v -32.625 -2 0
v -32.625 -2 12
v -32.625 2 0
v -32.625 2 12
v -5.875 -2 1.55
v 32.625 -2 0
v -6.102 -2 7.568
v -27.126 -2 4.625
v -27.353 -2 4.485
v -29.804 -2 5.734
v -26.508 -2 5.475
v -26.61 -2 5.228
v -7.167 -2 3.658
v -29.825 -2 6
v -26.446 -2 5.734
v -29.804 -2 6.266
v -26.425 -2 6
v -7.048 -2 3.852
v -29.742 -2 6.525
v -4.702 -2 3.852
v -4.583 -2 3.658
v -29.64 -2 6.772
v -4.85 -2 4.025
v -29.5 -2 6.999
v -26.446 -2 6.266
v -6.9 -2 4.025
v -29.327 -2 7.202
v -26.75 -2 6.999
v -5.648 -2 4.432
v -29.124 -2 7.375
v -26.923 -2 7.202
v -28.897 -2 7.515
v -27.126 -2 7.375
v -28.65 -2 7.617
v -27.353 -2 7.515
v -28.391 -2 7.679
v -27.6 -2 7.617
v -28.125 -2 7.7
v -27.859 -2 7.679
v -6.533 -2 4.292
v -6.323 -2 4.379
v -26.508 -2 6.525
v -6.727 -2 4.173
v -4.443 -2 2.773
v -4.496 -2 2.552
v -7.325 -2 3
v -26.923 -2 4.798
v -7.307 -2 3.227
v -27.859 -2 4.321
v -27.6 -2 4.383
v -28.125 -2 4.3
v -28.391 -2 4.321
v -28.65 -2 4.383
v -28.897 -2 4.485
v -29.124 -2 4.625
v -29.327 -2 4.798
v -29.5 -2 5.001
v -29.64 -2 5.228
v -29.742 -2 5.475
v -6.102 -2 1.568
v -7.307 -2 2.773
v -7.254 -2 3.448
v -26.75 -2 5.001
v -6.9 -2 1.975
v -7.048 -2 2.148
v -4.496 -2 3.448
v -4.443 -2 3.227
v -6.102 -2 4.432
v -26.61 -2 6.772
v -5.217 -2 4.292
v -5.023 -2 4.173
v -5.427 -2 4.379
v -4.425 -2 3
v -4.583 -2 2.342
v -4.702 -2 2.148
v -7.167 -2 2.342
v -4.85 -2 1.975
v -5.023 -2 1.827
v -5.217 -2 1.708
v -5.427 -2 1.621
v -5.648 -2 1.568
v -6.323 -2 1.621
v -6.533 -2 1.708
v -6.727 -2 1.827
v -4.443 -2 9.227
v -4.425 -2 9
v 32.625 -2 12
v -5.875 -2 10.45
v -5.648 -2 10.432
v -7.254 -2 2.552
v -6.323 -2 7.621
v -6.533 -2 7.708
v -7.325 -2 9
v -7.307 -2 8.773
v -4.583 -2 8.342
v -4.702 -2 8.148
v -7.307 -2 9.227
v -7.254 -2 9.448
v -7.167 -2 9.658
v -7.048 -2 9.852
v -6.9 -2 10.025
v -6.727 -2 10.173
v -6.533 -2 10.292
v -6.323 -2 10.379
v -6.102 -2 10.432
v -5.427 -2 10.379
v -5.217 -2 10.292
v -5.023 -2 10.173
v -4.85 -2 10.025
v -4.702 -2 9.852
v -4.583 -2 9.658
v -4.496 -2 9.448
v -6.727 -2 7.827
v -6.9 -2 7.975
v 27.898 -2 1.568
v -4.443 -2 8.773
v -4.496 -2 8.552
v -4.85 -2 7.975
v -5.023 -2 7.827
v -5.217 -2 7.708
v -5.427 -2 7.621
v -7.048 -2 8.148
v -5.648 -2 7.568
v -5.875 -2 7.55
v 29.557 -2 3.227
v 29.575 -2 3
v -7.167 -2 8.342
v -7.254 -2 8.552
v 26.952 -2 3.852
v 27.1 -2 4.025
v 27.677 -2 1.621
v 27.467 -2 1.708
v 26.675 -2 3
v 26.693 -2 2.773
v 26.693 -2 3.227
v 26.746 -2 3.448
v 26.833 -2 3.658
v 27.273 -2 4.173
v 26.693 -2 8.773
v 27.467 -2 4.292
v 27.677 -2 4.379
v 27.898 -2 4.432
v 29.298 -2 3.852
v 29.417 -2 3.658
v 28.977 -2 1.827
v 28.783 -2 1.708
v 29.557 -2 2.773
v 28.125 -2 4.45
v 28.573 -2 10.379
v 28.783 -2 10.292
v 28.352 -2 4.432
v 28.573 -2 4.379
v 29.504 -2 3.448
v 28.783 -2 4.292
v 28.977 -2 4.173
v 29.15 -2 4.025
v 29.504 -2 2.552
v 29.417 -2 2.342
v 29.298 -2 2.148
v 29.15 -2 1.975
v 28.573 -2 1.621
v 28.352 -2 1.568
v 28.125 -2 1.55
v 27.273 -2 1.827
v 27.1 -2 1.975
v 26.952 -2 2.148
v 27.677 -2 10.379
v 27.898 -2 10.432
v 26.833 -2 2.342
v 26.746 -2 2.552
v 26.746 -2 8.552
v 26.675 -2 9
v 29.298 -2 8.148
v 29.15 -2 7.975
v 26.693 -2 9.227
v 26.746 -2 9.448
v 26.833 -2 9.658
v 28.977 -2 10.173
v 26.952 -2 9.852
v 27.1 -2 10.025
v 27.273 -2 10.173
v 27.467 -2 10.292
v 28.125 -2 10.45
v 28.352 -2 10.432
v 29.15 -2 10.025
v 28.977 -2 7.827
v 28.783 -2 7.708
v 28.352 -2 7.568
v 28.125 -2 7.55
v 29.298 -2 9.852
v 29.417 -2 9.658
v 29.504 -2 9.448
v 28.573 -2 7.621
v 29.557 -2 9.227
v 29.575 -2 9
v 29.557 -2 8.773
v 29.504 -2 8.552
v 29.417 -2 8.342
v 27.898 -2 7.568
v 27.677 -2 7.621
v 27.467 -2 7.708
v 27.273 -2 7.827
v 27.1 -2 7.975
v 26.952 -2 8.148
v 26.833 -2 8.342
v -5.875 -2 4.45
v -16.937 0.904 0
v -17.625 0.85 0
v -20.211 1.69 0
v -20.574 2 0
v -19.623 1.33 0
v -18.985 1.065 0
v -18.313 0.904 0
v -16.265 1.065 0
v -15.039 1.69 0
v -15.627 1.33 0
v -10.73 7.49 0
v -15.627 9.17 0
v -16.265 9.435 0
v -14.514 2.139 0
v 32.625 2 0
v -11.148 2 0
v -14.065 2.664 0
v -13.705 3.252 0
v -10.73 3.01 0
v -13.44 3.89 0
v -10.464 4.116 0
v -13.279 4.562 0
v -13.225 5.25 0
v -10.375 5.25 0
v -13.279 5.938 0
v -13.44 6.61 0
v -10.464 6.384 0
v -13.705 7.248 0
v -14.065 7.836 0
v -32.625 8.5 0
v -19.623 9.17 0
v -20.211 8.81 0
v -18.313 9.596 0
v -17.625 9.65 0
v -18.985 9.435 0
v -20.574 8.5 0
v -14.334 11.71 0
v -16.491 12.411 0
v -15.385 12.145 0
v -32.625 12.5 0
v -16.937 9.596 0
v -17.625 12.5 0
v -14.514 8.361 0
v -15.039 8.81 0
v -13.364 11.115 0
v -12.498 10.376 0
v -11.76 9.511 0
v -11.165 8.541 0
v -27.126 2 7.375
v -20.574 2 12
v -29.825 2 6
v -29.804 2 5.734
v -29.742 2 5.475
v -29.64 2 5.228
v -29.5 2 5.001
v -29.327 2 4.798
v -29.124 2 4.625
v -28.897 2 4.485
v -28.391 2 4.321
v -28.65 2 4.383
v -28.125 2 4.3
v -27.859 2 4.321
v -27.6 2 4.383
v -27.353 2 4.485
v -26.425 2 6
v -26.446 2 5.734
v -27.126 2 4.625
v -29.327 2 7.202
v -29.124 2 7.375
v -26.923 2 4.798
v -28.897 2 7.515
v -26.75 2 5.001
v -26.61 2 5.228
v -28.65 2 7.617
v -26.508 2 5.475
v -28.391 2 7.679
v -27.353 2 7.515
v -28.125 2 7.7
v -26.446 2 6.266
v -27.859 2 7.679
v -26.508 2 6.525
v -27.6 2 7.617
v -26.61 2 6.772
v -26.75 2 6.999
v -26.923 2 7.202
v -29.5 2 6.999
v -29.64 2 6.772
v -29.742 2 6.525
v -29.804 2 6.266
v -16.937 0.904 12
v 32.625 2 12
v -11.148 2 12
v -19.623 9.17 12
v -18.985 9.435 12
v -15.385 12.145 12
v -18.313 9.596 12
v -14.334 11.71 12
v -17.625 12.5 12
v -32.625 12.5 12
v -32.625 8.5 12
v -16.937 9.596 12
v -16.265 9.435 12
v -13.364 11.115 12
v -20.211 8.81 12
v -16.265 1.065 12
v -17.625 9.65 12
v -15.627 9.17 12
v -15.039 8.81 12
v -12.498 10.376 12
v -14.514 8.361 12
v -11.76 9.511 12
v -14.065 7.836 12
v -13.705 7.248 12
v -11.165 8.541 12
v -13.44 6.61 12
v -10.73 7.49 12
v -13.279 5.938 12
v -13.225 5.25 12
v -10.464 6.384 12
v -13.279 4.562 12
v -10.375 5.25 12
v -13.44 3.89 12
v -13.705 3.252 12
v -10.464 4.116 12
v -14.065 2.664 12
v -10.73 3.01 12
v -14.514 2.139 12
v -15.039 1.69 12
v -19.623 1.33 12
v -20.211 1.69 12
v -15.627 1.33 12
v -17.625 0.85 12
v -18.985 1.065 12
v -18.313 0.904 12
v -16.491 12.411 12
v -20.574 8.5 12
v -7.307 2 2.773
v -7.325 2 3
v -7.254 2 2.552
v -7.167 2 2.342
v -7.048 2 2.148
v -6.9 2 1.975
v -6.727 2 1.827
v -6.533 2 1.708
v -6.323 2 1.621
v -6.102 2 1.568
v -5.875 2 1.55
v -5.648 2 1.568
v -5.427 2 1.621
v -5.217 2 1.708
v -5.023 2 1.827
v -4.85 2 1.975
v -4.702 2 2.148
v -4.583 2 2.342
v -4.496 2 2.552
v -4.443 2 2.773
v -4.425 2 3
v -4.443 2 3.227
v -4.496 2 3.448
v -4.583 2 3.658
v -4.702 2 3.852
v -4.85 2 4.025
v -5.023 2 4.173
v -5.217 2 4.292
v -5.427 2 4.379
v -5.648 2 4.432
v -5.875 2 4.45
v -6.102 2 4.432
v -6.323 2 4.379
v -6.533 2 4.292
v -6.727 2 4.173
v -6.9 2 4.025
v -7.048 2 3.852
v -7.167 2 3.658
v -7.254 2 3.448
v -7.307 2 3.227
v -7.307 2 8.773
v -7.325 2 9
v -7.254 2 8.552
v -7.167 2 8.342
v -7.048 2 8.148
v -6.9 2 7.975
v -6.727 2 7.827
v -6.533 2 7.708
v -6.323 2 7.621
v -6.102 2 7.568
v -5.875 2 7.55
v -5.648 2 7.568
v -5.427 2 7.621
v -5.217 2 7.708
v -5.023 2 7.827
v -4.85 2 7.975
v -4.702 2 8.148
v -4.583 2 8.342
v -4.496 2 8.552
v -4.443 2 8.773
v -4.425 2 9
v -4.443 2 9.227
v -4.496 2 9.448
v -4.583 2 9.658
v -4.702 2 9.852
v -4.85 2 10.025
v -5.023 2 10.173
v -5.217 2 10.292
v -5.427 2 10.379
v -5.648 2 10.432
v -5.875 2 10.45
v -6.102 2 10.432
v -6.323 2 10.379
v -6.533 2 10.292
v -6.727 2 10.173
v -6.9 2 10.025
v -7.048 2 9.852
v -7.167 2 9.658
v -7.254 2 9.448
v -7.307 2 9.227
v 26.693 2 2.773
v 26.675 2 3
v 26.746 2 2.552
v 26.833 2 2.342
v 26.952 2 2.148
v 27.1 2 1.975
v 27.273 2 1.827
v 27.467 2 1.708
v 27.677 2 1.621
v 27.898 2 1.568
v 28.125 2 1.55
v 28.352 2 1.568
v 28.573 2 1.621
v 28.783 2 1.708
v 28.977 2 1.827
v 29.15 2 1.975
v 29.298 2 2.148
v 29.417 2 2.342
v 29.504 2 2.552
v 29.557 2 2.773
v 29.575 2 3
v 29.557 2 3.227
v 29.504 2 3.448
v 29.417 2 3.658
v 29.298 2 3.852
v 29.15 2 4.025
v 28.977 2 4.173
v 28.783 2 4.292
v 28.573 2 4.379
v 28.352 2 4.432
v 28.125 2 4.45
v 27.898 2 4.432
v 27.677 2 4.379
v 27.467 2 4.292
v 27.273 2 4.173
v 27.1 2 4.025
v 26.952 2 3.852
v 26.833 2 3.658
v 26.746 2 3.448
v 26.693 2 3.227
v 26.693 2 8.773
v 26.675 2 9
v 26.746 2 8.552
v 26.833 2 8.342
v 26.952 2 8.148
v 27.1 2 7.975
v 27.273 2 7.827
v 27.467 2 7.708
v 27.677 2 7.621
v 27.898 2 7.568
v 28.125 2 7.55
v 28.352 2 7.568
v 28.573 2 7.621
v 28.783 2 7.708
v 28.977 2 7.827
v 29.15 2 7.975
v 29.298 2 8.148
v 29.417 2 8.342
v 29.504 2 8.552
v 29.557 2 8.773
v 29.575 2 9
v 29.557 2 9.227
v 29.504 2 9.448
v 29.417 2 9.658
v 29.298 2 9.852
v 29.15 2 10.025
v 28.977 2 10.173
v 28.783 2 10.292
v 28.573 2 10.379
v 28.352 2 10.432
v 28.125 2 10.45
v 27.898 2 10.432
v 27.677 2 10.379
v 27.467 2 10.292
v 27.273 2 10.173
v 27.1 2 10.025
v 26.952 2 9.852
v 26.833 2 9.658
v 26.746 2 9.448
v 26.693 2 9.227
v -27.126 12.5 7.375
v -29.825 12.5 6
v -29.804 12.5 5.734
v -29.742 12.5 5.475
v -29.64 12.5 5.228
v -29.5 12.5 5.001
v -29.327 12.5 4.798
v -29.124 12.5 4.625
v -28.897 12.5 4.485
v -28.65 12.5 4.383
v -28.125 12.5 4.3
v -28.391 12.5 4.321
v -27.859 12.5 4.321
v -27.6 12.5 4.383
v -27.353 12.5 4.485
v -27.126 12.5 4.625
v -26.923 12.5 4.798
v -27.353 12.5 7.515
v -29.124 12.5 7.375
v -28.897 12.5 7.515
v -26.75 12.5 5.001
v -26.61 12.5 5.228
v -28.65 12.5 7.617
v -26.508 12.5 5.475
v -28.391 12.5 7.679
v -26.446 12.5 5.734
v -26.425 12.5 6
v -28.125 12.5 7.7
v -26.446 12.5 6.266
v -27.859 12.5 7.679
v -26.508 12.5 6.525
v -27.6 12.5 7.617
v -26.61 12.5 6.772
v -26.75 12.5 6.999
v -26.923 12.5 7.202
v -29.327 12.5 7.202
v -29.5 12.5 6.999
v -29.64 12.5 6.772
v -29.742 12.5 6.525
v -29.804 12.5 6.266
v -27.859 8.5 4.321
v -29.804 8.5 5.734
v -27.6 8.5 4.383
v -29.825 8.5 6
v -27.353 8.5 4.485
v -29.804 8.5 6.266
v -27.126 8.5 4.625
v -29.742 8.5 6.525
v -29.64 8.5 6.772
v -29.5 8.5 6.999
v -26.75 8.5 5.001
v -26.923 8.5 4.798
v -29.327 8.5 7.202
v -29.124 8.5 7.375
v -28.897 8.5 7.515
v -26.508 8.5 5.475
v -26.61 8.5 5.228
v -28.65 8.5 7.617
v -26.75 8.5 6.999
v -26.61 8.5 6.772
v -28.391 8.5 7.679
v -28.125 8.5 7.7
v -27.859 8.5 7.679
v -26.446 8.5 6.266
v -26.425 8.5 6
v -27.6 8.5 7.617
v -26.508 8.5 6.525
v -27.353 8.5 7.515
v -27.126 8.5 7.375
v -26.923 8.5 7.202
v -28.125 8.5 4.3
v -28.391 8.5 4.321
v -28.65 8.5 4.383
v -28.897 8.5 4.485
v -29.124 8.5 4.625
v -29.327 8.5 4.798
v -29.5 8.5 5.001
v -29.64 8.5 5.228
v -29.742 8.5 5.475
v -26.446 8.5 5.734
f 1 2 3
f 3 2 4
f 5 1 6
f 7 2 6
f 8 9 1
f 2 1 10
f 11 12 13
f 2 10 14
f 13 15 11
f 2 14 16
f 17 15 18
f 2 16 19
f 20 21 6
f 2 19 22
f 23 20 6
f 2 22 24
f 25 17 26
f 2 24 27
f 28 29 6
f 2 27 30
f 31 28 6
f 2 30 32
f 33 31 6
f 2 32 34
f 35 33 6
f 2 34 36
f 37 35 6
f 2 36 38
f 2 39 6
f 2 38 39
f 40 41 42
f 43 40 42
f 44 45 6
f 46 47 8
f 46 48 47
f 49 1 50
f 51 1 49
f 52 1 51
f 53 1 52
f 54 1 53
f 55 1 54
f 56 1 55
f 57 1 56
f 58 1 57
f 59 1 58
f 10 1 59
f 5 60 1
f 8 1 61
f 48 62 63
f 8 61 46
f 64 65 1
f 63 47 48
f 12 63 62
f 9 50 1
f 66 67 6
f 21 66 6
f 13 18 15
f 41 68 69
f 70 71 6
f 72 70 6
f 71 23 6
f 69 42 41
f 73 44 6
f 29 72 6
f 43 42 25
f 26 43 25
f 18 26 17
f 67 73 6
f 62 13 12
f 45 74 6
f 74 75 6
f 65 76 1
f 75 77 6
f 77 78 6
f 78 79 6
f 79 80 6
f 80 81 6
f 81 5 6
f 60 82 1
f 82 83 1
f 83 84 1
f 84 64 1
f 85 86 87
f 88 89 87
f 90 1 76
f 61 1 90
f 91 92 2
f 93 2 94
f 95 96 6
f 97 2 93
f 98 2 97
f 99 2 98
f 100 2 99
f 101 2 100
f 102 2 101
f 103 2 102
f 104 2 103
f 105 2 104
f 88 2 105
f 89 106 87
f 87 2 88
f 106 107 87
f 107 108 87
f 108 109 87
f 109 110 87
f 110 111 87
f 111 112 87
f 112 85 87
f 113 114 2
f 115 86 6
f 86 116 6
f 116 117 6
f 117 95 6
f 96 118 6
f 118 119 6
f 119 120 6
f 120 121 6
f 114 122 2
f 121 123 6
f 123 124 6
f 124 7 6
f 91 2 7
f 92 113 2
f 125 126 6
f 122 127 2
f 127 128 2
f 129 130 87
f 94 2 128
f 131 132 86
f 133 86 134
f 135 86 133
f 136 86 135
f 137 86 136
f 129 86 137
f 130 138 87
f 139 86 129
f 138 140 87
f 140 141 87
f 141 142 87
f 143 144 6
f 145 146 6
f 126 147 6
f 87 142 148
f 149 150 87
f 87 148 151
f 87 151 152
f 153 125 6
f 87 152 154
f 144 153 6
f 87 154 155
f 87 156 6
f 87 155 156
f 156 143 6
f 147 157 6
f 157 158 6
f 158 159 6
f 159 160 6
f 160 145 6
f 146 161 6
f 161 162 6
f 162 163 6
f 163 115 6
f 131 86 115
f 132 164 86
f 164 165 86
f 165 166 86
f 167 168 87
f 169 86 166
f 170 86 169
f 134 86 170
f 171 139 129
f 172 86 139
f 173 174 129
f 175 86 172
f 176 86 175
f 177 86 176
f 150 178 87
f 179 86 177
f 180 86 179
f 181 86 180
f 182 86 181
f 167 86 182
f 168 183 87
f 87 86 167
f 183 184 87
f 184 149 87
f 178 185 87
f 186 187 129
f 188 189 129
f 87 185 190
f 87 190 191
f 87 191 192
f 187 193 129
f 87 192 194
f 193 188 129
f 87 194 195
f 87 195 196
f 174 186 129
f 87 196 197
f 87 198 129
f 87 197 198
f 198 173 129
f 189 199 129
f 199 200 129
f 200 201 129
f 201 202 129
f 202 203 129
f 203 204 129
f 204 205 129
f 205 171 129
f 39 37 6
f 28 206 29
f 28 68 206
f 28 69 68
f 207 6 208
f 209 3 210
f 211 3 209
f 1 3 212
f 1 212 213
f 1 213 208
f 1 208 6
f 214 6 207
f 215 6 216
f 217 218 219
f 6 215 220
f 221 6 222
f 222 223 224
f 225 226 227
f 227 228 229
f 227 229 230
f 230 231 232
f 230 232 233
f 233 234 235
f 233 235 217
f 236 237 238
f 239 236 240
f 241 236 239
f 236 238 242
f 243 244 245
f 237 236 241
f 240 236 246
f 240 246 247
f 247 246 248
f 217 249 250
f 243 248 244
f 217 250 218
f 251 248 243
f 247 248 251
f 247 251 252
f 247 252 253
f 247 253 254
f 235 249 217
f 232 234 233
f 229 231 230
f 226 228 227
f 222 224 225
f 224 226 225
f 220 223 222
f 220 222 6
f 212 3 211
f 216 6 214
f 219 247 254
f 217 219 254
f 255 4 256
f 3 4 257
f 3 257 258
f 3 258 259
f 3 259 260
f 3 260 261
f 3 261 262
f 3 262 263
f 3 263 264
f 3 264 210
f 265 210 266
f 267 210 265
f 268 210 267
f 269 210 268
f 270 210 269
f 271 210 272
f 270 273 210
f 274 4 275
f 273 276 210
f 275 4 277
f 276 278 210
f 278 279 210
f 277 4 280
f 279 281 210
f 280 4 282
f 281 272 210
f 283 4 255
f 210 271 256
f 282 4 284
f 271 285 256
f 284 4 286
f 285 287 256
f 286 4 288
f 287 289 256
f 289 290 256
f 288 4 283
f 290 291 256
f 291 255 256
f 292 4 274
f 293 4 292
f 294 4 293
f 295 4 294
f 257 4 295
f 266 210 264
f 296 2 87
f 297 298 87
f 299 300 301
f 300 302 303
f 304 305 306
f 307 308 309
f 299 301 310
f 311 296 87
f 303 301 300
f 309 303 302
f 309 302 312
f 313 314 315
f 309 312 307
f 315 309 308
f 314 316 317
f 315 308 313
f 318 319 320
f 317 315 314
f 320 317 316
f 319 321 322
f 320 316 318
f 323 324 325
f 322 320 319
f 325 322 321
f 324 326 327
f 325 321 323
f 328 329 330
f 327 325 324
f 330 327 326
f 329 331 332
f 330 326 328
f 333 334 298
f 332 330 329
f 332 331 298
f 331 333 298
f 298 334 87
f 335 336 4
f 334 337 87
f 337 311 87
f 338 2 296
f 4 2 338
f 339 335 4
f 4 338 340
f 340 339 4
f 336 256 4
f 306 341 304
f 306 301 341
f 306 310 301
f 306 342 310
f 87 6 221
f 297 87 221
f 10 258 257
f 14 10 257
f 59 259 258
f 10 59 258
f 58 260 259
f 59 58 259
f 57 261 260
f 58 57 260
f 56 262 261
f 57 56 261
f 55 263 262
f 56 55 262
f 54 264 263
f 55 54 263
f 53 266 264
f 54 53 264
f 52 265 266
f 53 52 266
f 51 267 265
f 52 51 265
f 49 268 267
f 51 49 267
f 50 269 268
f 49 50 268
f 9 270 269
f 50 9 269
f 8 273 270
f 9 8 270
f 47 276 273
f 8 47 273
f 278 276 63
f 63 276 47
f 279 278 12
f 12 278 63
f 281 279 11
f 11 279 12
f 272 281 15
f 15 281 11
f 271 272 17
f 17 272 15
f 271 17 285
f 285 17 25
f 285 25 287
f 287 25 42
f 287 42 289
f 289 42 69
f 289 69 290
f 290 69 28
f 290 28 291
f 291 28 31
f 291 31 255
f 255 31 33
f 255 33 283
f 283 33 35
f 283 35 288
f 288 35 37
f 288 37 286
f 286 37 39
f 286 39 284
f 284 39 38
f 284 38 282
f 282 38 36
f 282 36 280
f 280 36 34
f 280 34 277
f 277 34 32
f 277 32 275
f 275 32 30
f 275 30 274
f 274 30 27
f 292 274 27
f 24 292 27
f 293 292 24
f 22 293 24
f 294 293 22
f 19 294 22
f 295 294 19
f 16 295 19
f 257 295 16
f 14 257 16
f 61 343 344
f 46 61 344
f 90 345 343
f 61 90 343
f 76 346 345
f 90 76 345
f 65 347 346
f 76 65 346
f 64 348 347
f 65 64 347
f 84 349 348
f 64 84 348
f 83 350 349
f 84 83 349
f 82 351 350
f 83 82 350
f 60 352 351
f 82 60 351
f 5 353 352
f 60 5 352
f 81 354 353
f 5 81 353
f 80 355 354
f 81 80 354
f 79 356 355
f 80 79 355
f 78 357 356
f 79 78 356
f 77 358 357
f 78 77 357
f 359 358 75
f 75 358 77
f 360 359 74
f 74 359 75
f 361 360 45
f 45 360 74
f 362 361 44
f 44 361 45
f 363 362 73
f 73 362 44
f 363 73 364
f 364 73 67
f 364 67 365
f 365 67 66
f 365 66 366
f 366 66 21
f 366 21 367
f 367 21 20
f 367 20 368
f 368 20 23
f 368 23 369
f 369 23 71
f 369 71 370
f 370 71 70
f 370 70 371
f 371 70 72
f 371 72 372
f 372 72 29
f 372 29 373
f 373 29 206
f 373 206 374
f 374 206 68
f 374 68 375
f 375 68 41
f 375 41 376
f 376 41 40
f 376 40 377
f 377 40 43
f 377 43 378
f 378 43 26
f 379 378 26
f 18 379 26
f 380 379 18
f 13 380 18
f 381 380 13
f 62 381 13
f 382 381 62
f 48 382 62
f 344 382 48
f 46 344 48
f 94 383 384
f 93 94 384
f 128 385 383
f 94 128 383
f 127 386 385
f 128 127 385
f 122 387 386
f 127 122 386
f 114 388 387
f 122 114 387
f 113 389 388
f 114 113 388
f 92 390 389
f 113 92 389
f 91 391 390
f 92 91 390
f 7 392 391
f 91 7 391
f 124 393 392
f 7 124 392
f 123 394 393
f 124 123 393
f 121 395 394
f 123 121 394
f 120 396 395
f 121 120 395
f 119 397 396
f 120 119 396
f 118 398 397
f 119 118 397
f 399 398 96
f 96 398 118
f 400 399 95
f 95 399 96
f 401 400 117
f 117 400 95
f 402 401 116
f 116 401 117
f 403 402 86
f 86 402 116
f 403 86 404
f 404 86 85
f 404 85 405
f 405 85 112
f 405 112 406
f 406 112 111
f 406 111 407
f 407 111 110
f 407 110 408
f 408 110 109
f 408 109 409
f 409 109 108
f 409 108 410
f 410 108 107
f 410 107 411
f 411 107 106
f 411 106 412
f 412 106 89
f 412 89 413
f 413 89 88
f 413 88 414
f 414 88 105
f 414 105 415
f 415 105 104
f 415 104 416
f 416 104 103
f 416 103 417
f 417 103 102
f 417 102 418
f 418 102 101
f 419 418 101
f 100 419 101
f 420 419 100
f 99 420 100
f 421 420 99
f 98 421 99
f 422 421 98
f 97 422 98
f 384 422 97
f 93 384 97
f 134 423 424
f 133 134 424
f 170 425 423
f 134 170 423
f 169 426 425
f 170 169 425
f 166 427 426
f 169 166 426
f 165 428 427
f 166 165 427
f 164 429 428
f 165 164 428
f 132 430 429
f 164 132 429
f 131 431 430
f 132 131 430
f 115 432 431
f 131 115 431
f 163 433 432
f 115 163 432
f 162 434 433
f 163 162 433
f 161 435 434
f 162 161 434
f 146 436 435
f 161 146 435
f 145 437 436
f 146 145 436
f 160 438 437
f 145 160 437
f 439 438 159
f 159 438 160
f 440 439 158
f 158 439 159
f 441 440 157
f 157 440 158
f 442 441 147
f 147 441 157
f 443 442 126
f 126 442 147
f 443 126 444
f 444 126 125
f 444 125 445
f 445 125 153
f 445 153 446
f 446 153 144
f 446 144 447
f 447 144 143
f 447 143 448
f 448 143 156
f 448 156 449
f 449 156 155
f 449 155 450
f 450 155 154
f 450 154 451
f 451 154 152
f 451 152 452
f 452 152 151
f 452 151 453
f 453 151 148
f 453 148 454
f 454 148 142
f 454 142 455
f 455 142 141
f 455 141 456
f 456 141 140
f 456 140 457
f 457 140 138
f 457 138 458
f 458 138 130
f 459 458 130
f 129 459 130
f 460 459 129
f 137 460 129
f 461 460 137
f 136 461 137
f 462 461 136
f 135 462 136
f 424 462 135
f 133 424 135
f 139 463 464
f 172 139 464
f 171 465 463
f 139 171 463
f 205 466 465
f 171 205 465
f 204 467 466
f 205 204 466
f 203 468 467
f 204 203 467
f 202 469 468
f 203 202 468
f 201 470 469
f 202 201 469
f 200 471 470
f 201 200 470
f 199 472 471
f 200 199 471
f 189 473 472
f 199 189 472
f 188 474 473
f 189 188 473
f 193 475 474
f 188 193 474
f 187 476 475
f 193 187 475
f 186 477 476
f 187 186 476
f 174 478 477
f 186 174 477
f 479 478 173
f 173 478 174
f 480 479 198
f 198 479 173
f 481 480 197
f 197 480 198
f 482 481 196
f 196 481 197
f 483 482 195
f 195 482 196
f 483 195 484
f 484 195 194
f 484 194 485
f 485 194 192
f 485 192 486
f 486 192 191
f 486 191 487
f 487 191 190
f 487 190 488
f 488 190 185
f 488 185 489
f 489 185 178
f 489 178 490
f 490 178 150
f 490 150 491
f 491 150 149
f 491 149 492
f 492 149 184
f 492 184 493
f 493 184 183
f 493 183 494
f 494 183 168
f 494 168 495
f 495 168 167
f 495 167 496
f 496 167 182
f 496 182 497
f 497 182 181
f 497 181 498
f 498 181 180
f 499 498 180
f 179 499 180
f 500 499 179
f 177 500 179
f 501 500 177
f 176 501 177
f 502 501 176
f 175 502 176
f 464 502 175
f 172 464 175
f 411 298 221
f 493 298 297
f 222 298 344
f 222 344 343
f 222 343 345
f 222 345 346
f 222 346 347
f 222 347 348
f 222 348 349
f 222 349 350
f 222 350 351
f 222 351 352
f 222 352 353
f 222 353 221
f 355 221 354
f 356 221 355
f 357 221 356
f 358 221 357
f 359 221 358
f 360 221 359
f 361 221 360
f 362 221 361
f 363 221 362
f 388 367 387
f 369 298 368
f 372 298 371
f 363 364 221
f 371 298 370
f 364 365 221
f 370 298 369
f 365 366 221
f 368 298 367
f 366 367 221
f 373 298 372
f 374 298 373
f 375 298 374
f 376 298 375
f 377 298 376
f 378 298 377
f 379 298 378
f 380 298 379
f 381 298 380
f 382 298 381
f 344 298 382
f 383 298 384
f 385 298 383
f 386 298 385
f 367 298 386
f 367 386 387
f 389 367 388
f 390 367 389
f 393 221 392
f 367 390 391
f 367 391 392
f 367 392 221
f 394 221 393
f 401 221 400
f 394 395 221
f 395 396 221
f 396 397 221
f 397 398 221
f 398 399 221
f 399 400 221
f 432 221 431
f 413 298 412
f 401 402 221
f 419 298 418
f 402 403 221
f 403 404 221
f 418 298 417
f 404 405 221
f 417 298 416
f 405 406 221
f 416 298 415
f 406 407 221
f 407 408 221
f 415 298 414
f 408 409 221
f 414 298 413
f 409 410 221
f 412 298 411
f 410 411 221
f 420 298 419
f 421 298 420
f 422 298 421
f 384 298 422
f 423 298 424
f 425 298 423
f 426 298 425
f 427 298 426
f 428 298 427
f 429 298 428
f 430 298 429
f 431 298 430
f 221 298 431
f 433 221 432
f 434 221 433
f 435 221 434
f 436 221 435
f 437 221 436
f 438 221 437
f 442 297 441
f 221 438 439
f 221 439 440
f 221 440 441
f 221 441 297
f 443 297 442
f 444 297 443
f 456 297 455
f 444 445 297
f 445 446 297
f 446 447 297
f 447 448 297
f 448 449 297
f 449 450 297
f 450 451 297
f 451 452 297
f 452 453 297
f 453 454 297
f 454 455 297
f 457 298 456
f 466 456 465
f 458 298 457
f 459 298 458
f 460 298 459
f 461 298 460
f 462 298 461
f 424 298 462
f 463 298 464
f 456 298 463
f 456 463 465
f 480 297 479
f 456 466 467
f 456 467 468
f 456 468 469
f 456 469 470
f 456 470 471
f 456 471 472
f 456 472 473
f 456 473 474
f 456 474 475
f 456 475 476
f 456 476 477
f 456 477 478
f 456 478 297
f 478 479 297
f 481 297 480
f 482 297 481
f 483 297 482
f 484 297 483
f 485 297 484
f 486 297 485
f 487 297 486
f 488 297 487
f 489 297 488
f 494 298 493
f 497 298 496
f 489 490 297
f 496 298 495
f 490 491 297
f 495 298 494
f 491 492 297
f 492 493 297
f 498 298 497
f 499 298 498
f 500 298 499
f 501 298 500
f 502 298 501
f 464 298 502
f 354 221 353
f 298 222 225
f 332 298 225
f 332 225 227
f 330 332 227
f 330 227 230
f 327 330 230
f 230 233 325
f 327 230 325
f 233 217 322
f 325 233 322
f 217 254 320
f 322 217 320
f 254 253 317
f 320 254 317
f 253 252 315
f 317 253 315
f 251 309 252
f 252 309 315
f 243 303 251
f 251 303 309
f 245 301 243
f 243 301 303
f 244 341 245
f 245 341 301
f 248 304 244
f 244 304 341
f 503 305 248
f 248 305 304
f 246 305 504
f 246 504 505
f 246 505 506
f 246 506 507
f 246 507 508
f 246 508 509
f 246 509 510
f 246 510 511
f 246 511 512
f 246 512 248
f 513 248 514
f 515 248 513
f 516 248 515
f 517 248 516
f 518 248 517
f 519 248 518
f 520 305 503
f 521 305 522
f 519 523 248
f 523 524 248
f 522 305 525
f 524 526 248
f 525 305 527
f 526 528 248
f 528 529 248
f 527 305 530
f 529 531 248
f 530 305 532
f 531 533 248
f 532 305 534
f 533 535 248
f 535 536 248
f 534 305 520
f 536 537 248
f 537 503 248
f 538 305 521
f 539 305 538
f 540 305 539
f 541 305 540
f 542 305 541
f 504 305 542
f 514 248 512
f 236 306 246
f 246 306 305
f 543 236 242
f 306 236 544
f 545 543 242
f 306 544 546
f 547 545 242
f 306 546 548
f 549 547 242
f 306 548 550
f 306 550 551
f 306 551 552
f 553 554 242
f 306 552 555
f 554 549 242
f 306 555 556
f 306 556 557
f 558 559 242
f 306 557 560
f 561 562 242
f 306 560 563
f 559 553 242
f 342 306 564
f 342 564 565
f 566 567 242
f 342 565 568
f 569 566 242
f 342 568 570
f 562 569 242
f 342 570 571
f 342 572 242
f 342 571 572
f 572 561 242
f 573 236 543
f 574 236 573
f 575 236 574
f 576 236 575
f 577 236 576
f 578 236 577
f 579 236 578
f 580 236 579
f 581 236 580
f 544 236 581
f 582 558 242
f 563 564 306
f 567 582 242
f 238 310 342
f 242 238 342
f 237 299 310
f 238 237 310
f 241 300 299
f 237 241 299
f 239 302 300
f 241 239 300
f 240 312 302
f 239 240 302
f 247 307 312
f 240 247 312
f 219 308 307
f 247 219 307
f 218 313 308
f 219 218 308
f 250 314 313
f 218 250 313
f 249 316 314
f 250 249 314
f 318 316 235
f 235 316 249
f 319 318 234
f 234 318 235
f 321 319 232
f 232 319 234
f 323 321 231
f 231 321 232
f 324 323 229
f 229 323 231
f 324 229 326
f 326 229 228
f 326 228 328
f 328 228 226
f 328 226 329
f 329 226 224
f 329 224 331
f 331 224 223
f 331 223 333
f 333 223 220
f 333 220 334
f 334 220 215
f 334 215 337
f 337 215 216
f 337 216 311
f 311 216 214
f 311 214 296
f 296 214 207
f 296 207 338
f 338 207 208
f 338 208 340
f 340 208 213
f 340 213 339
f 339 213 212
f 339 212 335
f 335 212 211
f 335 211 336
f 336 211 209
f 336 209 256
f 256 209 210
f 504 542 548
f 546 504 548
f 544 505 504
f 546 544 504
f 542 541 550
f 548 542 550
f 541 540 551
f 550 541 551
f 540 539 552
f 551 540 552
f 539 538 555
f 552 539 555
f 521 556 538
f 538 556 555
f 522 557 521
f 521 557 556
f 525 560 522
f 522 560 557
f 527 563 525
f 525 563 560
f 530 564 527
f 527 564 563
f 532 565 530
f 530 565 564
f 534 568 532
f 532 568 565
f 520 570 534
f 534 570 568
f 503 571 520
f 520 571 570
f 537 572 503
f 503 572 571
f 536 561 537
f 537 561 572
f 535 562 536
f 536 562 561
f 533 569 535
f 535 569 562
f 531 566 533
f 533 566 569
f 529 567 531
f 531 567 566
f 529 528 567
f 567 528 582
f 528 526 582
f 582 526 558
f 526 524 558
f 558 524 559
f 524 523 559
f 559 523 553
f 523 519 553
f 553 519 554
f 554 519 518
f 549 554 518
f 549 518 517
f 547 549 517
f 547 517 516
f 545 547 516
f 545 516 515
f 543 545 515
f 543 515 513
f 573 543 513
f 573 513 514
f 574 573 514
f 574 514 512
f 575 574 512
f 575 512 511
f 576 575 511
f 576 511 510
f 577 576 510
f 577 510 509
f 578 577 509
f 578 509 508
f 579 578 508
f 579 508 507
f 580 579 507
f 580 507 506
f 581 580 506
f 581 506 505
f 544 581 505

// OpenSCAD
bw = 4; // bracket width
bh = 12; // bracket height
cl = 15; // clamp length
ad = 8; // axle diameter
hd = 3; // bolt hole diameter
nd = 6; // bolt nut diameter
mhd = 2.5; // microswitch hole diameter
ai = 0.75; // axle inset for clamp
xw = 0.4; // extrude width
mhs = 34; // microswitch hole separation
bl = cl + ad / 2 + (bw - ai) + hd * 3 + mhs; // bracket length
translate([0,0,bh/2]){
	difference(){
		union(){
			cube([bl,bw,bh], center = true);
			translate([-bl/2 + cl/2,bw + ad - 2*ai,0])
				cube([cl,bw,bh], center = true);
			difference(){
				translate([-bl/2 + cl,(ad+bw)/2-ai,0]) 
					cylinder(r=ad/2+bw-ai, h = bh, center = true, $fn = 40);
				translate([-bl/2+cl-ad/2-bw/2+ai/2,(ad+bw)/2-ai,0])
					cube([ad/2+bw-ai,ad,(bh+xw)],center=true);
			}
		}
		# translate([-bl/2 + cl,(ad+bw)/2-ai,0]) cylinder(r=ad/2+xw,h=bl,
		            center = true, $fn = 40);
		# translate([-bl/2+hd*1.5,(ad+bw)/2-ai,0]) rotate([90,0,0]) 
			cylinder(r=(hd+xw)/2, h = ad + bw*2 + xw,
			  center = true, $fn = 40);
		# translate([bl/2-hd*1.5,0,bh/4]) rotate([90,0,0]) 
			cylinder(r=(mhd+xw)/2, h = (bw + xw),
			  center = true, $fn = 40);
		# translate([bl/2-hd*1.5-mhs,0,bh/4]) rotate([90,0,0]) 
			cylinder(r=(mhd+xw)/2, h = (bw + xw),
			  center = true, $fn = 40);

		# translate([bl/2-hd*1.5,0,-bh/4]) rotate([90,0,0]) 
			cylinder(r=(mhd+xw)/2, h = (bw + xw),
			  center = true, $fn = 40);
		# translate([bl/2-hd*1.5-mhs,0,-bh/4]) rotate([90,0,0]) 
			cylinder(r=(mhd+xw)/2, h = (bw + xw),
			  center = true, $fn = 40);
	}
}
